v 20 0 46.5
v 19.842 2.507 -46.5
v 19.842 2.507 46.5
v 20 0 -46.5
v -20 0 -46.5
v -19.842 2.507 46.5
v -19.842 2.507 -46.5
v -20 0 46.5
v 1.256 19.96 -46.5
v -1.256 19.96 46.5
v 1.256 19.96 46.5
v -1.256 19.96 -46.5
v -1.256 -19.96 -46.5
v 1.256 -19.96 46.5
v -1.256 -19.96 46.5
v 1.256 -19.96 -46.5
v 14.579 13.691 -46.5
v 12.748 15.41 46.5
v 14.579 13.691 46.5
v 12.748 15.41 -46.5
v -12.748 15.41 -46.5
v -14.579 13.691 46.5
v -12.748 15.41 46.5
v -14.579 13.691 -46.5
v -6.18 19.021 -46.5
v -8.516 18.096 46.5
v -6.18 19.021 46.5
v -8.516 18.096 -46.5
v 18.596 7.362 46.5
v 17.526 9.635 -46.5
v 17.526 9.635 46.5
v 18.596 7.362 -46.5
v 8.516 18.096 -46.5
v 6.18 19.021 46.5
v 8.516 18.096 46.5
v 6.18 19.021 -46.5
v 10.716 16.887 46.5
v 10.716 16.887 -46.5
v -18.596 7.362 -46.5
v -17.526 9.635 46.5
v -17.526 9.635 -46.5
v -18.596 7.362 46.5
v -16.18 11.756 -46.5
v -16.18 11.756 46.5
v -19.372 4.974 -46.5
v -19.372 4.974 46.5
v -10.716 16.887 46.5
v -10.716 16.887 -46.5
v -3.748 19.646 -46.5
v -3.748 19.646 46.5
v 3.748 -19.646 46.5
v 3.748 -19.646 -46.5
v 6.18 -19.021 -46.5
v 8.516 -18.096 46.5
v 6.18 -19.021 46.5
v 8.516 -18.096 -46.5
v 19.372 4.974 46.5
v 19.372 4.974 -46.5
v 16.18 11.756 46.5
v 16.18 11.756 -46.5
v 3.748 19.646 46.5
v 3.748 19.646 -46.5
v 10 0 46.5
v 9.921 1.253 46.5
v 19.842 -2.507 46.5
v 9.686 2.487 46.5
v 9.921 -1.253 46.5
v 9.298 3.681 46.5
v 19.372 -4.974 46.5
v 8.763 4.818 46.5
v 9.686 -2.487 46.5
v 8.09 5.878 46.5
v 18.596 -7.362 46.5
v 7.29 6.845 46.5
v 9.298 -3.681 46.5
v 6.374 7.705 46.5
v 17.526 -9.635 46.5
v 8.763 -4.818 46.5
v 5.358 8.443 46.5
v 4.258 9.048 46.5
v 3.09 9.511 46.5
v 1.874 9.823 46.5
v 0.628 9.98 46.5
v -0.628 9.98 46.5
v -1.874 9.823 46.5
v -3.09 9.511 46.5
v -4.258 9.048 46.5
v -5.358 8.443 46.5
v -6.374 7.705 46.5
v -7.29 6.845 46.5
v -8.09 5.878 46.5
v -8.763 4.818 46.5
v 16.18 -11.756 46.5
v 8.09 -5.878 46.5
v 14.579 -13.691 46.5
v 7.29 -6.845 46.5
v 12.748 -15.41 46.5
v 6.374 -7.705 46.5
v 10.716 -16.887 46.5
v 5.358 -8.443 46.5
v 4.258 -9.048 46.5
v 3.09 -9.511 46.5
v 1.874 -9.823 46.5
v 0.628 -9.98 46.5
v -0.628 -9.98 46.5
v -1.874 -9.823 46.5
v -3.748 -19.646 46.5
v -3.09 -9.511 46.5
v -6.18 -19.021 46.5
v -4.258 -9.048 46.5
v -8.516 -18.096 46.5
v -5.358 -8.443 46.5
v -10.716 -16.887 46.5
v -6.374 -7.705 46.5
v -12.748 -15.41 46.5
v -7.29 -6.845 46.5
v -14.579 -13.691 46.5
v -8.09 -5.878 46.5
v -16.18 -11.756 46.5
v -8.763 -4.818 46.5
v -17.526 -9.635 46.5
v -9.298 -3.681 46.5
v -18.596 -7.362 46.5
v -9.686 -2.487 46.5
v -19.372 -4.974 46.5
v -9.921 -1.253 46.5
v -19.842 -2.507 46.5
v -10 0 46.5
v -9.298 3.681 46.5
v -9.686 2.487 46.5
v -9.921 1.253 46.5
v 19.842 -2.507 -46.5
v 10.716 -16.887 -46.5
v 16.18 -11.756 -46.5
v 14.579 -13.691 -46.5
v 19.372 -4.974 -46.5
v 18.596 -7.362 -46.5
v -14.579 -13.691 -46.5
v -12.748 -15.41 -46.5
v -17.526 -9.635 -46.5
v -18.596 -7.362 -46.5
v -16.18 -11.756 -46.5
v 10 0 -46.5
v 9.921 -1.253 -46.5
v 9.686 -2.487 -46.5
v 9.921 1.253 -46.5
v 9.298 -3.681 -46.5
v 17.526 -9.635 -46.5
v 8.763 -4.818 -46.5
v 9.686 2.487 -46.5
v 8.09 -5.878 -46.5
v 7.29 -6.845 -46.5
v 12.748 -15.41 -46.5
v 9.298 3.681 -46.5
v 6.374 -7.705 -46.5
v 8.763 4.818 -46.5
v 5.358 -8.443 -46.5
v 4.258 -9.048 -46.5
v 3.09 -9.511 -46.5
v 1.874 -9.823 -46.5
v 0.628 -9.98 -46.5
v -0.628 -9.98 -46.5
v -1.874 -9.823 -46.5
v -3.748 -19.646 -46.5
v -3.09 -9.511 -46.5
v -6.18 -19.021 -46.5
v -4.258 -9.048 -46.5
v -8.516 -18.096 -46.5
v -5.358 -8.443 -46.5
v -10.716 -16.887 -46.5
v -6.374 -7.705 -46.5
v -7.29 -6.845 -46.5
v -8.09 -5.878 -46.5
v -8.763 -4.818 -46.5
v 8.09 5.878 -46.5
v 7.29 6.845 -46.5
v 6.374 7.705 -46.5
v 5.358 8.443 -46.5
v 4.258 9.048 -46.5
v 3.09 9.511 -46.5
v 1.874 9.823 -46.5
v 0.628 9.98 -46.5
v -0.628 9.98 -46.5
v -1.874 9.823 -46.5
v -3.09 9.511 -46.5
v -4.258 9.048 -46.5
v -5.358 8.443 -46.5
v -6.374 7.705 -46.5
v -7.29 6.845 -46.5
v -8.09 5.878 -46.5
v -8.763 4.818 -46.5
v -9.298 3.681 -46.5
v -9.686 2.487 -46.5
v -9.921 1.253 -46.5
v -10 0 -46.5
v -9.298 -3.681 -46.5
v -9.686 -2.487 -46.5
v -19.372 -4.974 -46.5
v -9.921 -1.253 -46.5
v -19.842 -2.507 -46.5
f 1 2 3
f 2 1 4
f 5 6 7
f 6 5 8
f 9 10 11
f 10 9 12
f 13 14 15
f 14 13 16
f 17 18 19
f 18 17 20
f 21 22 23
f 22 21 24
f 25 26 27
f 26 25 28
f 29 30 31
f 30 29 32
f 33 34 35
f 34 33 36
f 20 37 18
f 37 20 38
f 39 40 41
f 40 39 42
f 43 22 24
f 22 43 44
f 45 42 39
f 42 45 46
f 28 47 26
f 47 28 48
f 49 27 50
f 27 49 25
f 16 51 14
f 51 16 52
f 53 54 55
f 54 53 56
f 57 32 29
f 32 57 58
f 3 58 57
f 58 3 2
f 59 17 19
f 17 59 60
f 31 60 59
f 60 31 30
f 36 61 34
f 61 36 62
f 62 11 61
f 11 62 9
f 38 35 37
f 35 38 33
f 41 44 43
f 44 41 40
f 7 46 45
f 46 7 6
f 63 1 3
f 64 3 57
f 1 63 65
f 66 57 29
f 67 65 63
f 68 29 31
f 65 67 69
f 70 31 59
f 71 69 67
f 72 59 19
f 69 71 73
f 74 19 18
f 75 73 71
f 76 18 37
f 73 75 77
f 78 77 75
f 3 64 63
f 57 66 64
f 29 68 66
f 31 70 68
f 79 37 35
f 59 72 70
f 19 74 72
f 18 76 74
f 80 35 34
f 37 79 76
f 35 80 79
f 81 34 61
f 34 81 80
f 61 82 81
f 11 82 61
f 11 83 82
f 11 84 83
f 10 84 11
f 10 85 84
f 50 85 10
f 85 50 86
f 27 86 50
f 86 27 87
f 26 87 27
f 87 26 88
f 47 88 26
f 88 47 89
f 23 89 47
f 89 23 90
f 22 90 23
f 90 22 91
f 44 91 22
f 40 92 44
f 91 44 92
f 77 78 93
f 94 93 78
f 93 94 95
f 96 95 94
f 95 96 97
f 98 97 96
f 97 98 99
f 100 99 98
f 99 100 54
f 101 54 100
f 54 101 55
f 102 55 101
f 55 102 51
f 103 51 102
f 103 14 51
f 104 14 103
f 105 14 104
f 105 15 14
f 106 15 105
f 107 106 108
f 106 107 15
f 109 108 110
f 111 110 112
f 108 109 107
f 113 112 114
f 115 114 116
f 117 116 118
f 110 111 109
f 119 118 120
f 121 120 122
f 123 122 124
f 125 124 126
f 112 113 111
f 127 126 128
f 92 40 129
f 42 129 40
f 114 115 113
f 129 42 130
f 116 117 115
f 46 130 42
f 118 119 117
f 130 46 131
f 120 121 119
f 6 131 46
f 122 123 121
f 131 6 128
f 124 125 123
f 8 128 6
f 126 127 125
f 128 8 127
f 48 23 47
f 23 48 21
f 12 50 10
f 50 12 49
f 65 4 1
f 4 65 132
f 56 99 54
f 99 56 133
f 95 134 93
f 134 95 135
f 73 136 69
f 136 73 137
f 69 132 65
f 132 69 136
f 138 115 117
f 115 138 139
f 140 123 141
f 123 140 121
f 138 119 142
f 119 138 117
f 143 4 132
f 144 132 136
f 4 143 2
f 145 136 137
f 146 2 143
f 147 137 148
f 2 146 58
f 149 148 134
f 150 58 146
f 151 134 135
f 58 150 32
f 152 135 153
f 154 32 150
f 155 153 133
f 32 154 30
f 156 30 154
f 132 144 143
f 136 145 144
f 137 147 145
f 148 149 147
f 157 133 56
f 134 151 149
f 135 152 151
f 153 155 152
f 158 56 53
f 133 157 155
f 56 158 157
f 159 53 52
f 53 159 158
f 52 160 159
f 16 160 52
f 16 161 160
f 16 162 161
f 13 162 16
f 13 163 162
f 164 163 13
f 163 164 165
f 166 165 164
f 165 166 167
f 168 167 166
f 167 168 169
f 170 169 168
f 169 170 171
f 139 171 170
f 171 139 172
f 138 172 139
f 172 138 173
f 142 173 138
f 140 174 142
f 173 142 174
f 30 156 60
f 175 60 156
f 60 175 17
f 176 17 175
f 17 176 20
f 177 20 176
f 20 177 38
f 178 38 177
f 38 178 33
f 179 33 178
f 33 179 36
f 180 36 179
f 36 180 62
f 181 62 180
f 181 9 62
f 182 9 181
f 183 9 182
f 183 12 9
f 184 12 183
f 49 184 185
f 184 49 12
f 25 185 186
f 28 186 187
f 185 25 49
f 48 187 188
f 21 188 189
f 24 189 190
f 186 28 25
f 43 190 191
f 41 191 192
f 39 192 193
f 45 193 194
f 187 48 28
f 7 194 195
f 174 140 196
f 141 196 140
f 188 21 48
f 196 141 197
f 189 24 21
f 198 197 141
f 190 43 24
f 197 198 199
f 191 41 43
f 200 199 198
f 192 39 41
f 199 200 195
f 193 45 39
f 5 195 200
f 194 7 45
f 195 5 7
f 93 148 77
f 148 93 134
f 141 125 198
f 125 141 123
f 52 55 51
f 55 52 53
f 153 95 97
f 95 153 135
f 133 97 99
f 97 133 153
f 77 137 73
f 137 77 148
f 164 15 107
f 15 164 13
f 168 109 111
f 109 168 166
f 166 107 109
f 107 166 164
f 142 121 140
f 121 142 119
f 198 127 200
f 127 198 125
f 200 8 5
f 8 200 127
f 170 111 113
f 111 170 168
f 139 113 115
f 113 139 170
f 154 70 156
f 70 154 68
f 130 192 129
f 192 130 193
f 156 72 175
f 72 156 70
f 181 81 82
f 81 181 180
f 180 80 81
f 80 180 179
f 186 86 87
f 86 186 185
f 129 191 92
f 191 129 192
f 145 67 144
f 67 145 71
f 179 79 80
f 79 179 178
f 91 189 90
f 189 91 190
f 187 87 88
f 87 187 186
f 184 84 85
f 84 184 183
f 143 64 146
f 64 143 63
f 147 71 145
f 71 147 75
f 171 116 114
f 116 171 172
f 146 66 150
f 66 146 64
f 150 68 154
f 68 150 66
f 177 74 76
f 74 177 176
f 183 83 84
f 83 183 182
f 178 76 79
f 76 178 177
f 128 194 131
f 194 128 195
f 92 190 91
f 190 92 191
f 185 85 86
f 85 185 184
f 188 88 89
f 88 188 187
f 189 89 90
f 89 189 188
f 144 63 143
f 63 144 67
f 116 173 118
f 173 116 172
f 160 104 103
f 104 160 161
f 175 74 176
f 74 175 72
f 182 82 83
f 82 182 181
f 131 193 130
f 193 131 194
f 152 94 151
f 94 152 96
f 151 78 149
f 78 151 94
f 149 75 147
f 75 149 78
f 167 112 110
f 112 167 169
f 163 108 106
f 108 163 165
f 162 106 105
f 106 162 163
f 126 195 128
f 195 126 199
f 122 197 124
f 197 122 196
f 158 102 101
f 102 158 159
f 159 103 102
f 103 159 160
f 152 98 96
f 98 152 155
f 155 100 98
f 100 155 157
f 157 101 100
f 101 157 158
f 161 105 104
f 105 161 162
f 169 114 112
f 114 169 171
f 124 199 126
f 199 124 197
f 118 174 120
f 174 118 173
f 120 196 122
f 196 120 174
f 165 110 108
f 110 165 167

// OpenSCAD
$fn = 50;


difference() {
	union() {
		translate(v = [0, 0, -46.5000000000]) {
			cylinder(h = 93, r = 20.0000000000);
		}
	}
	union() {
		translate(v = [0, 0, -100.0000000000]) {
			cylinder(h = 200, r = 10);
		}
	}
}
